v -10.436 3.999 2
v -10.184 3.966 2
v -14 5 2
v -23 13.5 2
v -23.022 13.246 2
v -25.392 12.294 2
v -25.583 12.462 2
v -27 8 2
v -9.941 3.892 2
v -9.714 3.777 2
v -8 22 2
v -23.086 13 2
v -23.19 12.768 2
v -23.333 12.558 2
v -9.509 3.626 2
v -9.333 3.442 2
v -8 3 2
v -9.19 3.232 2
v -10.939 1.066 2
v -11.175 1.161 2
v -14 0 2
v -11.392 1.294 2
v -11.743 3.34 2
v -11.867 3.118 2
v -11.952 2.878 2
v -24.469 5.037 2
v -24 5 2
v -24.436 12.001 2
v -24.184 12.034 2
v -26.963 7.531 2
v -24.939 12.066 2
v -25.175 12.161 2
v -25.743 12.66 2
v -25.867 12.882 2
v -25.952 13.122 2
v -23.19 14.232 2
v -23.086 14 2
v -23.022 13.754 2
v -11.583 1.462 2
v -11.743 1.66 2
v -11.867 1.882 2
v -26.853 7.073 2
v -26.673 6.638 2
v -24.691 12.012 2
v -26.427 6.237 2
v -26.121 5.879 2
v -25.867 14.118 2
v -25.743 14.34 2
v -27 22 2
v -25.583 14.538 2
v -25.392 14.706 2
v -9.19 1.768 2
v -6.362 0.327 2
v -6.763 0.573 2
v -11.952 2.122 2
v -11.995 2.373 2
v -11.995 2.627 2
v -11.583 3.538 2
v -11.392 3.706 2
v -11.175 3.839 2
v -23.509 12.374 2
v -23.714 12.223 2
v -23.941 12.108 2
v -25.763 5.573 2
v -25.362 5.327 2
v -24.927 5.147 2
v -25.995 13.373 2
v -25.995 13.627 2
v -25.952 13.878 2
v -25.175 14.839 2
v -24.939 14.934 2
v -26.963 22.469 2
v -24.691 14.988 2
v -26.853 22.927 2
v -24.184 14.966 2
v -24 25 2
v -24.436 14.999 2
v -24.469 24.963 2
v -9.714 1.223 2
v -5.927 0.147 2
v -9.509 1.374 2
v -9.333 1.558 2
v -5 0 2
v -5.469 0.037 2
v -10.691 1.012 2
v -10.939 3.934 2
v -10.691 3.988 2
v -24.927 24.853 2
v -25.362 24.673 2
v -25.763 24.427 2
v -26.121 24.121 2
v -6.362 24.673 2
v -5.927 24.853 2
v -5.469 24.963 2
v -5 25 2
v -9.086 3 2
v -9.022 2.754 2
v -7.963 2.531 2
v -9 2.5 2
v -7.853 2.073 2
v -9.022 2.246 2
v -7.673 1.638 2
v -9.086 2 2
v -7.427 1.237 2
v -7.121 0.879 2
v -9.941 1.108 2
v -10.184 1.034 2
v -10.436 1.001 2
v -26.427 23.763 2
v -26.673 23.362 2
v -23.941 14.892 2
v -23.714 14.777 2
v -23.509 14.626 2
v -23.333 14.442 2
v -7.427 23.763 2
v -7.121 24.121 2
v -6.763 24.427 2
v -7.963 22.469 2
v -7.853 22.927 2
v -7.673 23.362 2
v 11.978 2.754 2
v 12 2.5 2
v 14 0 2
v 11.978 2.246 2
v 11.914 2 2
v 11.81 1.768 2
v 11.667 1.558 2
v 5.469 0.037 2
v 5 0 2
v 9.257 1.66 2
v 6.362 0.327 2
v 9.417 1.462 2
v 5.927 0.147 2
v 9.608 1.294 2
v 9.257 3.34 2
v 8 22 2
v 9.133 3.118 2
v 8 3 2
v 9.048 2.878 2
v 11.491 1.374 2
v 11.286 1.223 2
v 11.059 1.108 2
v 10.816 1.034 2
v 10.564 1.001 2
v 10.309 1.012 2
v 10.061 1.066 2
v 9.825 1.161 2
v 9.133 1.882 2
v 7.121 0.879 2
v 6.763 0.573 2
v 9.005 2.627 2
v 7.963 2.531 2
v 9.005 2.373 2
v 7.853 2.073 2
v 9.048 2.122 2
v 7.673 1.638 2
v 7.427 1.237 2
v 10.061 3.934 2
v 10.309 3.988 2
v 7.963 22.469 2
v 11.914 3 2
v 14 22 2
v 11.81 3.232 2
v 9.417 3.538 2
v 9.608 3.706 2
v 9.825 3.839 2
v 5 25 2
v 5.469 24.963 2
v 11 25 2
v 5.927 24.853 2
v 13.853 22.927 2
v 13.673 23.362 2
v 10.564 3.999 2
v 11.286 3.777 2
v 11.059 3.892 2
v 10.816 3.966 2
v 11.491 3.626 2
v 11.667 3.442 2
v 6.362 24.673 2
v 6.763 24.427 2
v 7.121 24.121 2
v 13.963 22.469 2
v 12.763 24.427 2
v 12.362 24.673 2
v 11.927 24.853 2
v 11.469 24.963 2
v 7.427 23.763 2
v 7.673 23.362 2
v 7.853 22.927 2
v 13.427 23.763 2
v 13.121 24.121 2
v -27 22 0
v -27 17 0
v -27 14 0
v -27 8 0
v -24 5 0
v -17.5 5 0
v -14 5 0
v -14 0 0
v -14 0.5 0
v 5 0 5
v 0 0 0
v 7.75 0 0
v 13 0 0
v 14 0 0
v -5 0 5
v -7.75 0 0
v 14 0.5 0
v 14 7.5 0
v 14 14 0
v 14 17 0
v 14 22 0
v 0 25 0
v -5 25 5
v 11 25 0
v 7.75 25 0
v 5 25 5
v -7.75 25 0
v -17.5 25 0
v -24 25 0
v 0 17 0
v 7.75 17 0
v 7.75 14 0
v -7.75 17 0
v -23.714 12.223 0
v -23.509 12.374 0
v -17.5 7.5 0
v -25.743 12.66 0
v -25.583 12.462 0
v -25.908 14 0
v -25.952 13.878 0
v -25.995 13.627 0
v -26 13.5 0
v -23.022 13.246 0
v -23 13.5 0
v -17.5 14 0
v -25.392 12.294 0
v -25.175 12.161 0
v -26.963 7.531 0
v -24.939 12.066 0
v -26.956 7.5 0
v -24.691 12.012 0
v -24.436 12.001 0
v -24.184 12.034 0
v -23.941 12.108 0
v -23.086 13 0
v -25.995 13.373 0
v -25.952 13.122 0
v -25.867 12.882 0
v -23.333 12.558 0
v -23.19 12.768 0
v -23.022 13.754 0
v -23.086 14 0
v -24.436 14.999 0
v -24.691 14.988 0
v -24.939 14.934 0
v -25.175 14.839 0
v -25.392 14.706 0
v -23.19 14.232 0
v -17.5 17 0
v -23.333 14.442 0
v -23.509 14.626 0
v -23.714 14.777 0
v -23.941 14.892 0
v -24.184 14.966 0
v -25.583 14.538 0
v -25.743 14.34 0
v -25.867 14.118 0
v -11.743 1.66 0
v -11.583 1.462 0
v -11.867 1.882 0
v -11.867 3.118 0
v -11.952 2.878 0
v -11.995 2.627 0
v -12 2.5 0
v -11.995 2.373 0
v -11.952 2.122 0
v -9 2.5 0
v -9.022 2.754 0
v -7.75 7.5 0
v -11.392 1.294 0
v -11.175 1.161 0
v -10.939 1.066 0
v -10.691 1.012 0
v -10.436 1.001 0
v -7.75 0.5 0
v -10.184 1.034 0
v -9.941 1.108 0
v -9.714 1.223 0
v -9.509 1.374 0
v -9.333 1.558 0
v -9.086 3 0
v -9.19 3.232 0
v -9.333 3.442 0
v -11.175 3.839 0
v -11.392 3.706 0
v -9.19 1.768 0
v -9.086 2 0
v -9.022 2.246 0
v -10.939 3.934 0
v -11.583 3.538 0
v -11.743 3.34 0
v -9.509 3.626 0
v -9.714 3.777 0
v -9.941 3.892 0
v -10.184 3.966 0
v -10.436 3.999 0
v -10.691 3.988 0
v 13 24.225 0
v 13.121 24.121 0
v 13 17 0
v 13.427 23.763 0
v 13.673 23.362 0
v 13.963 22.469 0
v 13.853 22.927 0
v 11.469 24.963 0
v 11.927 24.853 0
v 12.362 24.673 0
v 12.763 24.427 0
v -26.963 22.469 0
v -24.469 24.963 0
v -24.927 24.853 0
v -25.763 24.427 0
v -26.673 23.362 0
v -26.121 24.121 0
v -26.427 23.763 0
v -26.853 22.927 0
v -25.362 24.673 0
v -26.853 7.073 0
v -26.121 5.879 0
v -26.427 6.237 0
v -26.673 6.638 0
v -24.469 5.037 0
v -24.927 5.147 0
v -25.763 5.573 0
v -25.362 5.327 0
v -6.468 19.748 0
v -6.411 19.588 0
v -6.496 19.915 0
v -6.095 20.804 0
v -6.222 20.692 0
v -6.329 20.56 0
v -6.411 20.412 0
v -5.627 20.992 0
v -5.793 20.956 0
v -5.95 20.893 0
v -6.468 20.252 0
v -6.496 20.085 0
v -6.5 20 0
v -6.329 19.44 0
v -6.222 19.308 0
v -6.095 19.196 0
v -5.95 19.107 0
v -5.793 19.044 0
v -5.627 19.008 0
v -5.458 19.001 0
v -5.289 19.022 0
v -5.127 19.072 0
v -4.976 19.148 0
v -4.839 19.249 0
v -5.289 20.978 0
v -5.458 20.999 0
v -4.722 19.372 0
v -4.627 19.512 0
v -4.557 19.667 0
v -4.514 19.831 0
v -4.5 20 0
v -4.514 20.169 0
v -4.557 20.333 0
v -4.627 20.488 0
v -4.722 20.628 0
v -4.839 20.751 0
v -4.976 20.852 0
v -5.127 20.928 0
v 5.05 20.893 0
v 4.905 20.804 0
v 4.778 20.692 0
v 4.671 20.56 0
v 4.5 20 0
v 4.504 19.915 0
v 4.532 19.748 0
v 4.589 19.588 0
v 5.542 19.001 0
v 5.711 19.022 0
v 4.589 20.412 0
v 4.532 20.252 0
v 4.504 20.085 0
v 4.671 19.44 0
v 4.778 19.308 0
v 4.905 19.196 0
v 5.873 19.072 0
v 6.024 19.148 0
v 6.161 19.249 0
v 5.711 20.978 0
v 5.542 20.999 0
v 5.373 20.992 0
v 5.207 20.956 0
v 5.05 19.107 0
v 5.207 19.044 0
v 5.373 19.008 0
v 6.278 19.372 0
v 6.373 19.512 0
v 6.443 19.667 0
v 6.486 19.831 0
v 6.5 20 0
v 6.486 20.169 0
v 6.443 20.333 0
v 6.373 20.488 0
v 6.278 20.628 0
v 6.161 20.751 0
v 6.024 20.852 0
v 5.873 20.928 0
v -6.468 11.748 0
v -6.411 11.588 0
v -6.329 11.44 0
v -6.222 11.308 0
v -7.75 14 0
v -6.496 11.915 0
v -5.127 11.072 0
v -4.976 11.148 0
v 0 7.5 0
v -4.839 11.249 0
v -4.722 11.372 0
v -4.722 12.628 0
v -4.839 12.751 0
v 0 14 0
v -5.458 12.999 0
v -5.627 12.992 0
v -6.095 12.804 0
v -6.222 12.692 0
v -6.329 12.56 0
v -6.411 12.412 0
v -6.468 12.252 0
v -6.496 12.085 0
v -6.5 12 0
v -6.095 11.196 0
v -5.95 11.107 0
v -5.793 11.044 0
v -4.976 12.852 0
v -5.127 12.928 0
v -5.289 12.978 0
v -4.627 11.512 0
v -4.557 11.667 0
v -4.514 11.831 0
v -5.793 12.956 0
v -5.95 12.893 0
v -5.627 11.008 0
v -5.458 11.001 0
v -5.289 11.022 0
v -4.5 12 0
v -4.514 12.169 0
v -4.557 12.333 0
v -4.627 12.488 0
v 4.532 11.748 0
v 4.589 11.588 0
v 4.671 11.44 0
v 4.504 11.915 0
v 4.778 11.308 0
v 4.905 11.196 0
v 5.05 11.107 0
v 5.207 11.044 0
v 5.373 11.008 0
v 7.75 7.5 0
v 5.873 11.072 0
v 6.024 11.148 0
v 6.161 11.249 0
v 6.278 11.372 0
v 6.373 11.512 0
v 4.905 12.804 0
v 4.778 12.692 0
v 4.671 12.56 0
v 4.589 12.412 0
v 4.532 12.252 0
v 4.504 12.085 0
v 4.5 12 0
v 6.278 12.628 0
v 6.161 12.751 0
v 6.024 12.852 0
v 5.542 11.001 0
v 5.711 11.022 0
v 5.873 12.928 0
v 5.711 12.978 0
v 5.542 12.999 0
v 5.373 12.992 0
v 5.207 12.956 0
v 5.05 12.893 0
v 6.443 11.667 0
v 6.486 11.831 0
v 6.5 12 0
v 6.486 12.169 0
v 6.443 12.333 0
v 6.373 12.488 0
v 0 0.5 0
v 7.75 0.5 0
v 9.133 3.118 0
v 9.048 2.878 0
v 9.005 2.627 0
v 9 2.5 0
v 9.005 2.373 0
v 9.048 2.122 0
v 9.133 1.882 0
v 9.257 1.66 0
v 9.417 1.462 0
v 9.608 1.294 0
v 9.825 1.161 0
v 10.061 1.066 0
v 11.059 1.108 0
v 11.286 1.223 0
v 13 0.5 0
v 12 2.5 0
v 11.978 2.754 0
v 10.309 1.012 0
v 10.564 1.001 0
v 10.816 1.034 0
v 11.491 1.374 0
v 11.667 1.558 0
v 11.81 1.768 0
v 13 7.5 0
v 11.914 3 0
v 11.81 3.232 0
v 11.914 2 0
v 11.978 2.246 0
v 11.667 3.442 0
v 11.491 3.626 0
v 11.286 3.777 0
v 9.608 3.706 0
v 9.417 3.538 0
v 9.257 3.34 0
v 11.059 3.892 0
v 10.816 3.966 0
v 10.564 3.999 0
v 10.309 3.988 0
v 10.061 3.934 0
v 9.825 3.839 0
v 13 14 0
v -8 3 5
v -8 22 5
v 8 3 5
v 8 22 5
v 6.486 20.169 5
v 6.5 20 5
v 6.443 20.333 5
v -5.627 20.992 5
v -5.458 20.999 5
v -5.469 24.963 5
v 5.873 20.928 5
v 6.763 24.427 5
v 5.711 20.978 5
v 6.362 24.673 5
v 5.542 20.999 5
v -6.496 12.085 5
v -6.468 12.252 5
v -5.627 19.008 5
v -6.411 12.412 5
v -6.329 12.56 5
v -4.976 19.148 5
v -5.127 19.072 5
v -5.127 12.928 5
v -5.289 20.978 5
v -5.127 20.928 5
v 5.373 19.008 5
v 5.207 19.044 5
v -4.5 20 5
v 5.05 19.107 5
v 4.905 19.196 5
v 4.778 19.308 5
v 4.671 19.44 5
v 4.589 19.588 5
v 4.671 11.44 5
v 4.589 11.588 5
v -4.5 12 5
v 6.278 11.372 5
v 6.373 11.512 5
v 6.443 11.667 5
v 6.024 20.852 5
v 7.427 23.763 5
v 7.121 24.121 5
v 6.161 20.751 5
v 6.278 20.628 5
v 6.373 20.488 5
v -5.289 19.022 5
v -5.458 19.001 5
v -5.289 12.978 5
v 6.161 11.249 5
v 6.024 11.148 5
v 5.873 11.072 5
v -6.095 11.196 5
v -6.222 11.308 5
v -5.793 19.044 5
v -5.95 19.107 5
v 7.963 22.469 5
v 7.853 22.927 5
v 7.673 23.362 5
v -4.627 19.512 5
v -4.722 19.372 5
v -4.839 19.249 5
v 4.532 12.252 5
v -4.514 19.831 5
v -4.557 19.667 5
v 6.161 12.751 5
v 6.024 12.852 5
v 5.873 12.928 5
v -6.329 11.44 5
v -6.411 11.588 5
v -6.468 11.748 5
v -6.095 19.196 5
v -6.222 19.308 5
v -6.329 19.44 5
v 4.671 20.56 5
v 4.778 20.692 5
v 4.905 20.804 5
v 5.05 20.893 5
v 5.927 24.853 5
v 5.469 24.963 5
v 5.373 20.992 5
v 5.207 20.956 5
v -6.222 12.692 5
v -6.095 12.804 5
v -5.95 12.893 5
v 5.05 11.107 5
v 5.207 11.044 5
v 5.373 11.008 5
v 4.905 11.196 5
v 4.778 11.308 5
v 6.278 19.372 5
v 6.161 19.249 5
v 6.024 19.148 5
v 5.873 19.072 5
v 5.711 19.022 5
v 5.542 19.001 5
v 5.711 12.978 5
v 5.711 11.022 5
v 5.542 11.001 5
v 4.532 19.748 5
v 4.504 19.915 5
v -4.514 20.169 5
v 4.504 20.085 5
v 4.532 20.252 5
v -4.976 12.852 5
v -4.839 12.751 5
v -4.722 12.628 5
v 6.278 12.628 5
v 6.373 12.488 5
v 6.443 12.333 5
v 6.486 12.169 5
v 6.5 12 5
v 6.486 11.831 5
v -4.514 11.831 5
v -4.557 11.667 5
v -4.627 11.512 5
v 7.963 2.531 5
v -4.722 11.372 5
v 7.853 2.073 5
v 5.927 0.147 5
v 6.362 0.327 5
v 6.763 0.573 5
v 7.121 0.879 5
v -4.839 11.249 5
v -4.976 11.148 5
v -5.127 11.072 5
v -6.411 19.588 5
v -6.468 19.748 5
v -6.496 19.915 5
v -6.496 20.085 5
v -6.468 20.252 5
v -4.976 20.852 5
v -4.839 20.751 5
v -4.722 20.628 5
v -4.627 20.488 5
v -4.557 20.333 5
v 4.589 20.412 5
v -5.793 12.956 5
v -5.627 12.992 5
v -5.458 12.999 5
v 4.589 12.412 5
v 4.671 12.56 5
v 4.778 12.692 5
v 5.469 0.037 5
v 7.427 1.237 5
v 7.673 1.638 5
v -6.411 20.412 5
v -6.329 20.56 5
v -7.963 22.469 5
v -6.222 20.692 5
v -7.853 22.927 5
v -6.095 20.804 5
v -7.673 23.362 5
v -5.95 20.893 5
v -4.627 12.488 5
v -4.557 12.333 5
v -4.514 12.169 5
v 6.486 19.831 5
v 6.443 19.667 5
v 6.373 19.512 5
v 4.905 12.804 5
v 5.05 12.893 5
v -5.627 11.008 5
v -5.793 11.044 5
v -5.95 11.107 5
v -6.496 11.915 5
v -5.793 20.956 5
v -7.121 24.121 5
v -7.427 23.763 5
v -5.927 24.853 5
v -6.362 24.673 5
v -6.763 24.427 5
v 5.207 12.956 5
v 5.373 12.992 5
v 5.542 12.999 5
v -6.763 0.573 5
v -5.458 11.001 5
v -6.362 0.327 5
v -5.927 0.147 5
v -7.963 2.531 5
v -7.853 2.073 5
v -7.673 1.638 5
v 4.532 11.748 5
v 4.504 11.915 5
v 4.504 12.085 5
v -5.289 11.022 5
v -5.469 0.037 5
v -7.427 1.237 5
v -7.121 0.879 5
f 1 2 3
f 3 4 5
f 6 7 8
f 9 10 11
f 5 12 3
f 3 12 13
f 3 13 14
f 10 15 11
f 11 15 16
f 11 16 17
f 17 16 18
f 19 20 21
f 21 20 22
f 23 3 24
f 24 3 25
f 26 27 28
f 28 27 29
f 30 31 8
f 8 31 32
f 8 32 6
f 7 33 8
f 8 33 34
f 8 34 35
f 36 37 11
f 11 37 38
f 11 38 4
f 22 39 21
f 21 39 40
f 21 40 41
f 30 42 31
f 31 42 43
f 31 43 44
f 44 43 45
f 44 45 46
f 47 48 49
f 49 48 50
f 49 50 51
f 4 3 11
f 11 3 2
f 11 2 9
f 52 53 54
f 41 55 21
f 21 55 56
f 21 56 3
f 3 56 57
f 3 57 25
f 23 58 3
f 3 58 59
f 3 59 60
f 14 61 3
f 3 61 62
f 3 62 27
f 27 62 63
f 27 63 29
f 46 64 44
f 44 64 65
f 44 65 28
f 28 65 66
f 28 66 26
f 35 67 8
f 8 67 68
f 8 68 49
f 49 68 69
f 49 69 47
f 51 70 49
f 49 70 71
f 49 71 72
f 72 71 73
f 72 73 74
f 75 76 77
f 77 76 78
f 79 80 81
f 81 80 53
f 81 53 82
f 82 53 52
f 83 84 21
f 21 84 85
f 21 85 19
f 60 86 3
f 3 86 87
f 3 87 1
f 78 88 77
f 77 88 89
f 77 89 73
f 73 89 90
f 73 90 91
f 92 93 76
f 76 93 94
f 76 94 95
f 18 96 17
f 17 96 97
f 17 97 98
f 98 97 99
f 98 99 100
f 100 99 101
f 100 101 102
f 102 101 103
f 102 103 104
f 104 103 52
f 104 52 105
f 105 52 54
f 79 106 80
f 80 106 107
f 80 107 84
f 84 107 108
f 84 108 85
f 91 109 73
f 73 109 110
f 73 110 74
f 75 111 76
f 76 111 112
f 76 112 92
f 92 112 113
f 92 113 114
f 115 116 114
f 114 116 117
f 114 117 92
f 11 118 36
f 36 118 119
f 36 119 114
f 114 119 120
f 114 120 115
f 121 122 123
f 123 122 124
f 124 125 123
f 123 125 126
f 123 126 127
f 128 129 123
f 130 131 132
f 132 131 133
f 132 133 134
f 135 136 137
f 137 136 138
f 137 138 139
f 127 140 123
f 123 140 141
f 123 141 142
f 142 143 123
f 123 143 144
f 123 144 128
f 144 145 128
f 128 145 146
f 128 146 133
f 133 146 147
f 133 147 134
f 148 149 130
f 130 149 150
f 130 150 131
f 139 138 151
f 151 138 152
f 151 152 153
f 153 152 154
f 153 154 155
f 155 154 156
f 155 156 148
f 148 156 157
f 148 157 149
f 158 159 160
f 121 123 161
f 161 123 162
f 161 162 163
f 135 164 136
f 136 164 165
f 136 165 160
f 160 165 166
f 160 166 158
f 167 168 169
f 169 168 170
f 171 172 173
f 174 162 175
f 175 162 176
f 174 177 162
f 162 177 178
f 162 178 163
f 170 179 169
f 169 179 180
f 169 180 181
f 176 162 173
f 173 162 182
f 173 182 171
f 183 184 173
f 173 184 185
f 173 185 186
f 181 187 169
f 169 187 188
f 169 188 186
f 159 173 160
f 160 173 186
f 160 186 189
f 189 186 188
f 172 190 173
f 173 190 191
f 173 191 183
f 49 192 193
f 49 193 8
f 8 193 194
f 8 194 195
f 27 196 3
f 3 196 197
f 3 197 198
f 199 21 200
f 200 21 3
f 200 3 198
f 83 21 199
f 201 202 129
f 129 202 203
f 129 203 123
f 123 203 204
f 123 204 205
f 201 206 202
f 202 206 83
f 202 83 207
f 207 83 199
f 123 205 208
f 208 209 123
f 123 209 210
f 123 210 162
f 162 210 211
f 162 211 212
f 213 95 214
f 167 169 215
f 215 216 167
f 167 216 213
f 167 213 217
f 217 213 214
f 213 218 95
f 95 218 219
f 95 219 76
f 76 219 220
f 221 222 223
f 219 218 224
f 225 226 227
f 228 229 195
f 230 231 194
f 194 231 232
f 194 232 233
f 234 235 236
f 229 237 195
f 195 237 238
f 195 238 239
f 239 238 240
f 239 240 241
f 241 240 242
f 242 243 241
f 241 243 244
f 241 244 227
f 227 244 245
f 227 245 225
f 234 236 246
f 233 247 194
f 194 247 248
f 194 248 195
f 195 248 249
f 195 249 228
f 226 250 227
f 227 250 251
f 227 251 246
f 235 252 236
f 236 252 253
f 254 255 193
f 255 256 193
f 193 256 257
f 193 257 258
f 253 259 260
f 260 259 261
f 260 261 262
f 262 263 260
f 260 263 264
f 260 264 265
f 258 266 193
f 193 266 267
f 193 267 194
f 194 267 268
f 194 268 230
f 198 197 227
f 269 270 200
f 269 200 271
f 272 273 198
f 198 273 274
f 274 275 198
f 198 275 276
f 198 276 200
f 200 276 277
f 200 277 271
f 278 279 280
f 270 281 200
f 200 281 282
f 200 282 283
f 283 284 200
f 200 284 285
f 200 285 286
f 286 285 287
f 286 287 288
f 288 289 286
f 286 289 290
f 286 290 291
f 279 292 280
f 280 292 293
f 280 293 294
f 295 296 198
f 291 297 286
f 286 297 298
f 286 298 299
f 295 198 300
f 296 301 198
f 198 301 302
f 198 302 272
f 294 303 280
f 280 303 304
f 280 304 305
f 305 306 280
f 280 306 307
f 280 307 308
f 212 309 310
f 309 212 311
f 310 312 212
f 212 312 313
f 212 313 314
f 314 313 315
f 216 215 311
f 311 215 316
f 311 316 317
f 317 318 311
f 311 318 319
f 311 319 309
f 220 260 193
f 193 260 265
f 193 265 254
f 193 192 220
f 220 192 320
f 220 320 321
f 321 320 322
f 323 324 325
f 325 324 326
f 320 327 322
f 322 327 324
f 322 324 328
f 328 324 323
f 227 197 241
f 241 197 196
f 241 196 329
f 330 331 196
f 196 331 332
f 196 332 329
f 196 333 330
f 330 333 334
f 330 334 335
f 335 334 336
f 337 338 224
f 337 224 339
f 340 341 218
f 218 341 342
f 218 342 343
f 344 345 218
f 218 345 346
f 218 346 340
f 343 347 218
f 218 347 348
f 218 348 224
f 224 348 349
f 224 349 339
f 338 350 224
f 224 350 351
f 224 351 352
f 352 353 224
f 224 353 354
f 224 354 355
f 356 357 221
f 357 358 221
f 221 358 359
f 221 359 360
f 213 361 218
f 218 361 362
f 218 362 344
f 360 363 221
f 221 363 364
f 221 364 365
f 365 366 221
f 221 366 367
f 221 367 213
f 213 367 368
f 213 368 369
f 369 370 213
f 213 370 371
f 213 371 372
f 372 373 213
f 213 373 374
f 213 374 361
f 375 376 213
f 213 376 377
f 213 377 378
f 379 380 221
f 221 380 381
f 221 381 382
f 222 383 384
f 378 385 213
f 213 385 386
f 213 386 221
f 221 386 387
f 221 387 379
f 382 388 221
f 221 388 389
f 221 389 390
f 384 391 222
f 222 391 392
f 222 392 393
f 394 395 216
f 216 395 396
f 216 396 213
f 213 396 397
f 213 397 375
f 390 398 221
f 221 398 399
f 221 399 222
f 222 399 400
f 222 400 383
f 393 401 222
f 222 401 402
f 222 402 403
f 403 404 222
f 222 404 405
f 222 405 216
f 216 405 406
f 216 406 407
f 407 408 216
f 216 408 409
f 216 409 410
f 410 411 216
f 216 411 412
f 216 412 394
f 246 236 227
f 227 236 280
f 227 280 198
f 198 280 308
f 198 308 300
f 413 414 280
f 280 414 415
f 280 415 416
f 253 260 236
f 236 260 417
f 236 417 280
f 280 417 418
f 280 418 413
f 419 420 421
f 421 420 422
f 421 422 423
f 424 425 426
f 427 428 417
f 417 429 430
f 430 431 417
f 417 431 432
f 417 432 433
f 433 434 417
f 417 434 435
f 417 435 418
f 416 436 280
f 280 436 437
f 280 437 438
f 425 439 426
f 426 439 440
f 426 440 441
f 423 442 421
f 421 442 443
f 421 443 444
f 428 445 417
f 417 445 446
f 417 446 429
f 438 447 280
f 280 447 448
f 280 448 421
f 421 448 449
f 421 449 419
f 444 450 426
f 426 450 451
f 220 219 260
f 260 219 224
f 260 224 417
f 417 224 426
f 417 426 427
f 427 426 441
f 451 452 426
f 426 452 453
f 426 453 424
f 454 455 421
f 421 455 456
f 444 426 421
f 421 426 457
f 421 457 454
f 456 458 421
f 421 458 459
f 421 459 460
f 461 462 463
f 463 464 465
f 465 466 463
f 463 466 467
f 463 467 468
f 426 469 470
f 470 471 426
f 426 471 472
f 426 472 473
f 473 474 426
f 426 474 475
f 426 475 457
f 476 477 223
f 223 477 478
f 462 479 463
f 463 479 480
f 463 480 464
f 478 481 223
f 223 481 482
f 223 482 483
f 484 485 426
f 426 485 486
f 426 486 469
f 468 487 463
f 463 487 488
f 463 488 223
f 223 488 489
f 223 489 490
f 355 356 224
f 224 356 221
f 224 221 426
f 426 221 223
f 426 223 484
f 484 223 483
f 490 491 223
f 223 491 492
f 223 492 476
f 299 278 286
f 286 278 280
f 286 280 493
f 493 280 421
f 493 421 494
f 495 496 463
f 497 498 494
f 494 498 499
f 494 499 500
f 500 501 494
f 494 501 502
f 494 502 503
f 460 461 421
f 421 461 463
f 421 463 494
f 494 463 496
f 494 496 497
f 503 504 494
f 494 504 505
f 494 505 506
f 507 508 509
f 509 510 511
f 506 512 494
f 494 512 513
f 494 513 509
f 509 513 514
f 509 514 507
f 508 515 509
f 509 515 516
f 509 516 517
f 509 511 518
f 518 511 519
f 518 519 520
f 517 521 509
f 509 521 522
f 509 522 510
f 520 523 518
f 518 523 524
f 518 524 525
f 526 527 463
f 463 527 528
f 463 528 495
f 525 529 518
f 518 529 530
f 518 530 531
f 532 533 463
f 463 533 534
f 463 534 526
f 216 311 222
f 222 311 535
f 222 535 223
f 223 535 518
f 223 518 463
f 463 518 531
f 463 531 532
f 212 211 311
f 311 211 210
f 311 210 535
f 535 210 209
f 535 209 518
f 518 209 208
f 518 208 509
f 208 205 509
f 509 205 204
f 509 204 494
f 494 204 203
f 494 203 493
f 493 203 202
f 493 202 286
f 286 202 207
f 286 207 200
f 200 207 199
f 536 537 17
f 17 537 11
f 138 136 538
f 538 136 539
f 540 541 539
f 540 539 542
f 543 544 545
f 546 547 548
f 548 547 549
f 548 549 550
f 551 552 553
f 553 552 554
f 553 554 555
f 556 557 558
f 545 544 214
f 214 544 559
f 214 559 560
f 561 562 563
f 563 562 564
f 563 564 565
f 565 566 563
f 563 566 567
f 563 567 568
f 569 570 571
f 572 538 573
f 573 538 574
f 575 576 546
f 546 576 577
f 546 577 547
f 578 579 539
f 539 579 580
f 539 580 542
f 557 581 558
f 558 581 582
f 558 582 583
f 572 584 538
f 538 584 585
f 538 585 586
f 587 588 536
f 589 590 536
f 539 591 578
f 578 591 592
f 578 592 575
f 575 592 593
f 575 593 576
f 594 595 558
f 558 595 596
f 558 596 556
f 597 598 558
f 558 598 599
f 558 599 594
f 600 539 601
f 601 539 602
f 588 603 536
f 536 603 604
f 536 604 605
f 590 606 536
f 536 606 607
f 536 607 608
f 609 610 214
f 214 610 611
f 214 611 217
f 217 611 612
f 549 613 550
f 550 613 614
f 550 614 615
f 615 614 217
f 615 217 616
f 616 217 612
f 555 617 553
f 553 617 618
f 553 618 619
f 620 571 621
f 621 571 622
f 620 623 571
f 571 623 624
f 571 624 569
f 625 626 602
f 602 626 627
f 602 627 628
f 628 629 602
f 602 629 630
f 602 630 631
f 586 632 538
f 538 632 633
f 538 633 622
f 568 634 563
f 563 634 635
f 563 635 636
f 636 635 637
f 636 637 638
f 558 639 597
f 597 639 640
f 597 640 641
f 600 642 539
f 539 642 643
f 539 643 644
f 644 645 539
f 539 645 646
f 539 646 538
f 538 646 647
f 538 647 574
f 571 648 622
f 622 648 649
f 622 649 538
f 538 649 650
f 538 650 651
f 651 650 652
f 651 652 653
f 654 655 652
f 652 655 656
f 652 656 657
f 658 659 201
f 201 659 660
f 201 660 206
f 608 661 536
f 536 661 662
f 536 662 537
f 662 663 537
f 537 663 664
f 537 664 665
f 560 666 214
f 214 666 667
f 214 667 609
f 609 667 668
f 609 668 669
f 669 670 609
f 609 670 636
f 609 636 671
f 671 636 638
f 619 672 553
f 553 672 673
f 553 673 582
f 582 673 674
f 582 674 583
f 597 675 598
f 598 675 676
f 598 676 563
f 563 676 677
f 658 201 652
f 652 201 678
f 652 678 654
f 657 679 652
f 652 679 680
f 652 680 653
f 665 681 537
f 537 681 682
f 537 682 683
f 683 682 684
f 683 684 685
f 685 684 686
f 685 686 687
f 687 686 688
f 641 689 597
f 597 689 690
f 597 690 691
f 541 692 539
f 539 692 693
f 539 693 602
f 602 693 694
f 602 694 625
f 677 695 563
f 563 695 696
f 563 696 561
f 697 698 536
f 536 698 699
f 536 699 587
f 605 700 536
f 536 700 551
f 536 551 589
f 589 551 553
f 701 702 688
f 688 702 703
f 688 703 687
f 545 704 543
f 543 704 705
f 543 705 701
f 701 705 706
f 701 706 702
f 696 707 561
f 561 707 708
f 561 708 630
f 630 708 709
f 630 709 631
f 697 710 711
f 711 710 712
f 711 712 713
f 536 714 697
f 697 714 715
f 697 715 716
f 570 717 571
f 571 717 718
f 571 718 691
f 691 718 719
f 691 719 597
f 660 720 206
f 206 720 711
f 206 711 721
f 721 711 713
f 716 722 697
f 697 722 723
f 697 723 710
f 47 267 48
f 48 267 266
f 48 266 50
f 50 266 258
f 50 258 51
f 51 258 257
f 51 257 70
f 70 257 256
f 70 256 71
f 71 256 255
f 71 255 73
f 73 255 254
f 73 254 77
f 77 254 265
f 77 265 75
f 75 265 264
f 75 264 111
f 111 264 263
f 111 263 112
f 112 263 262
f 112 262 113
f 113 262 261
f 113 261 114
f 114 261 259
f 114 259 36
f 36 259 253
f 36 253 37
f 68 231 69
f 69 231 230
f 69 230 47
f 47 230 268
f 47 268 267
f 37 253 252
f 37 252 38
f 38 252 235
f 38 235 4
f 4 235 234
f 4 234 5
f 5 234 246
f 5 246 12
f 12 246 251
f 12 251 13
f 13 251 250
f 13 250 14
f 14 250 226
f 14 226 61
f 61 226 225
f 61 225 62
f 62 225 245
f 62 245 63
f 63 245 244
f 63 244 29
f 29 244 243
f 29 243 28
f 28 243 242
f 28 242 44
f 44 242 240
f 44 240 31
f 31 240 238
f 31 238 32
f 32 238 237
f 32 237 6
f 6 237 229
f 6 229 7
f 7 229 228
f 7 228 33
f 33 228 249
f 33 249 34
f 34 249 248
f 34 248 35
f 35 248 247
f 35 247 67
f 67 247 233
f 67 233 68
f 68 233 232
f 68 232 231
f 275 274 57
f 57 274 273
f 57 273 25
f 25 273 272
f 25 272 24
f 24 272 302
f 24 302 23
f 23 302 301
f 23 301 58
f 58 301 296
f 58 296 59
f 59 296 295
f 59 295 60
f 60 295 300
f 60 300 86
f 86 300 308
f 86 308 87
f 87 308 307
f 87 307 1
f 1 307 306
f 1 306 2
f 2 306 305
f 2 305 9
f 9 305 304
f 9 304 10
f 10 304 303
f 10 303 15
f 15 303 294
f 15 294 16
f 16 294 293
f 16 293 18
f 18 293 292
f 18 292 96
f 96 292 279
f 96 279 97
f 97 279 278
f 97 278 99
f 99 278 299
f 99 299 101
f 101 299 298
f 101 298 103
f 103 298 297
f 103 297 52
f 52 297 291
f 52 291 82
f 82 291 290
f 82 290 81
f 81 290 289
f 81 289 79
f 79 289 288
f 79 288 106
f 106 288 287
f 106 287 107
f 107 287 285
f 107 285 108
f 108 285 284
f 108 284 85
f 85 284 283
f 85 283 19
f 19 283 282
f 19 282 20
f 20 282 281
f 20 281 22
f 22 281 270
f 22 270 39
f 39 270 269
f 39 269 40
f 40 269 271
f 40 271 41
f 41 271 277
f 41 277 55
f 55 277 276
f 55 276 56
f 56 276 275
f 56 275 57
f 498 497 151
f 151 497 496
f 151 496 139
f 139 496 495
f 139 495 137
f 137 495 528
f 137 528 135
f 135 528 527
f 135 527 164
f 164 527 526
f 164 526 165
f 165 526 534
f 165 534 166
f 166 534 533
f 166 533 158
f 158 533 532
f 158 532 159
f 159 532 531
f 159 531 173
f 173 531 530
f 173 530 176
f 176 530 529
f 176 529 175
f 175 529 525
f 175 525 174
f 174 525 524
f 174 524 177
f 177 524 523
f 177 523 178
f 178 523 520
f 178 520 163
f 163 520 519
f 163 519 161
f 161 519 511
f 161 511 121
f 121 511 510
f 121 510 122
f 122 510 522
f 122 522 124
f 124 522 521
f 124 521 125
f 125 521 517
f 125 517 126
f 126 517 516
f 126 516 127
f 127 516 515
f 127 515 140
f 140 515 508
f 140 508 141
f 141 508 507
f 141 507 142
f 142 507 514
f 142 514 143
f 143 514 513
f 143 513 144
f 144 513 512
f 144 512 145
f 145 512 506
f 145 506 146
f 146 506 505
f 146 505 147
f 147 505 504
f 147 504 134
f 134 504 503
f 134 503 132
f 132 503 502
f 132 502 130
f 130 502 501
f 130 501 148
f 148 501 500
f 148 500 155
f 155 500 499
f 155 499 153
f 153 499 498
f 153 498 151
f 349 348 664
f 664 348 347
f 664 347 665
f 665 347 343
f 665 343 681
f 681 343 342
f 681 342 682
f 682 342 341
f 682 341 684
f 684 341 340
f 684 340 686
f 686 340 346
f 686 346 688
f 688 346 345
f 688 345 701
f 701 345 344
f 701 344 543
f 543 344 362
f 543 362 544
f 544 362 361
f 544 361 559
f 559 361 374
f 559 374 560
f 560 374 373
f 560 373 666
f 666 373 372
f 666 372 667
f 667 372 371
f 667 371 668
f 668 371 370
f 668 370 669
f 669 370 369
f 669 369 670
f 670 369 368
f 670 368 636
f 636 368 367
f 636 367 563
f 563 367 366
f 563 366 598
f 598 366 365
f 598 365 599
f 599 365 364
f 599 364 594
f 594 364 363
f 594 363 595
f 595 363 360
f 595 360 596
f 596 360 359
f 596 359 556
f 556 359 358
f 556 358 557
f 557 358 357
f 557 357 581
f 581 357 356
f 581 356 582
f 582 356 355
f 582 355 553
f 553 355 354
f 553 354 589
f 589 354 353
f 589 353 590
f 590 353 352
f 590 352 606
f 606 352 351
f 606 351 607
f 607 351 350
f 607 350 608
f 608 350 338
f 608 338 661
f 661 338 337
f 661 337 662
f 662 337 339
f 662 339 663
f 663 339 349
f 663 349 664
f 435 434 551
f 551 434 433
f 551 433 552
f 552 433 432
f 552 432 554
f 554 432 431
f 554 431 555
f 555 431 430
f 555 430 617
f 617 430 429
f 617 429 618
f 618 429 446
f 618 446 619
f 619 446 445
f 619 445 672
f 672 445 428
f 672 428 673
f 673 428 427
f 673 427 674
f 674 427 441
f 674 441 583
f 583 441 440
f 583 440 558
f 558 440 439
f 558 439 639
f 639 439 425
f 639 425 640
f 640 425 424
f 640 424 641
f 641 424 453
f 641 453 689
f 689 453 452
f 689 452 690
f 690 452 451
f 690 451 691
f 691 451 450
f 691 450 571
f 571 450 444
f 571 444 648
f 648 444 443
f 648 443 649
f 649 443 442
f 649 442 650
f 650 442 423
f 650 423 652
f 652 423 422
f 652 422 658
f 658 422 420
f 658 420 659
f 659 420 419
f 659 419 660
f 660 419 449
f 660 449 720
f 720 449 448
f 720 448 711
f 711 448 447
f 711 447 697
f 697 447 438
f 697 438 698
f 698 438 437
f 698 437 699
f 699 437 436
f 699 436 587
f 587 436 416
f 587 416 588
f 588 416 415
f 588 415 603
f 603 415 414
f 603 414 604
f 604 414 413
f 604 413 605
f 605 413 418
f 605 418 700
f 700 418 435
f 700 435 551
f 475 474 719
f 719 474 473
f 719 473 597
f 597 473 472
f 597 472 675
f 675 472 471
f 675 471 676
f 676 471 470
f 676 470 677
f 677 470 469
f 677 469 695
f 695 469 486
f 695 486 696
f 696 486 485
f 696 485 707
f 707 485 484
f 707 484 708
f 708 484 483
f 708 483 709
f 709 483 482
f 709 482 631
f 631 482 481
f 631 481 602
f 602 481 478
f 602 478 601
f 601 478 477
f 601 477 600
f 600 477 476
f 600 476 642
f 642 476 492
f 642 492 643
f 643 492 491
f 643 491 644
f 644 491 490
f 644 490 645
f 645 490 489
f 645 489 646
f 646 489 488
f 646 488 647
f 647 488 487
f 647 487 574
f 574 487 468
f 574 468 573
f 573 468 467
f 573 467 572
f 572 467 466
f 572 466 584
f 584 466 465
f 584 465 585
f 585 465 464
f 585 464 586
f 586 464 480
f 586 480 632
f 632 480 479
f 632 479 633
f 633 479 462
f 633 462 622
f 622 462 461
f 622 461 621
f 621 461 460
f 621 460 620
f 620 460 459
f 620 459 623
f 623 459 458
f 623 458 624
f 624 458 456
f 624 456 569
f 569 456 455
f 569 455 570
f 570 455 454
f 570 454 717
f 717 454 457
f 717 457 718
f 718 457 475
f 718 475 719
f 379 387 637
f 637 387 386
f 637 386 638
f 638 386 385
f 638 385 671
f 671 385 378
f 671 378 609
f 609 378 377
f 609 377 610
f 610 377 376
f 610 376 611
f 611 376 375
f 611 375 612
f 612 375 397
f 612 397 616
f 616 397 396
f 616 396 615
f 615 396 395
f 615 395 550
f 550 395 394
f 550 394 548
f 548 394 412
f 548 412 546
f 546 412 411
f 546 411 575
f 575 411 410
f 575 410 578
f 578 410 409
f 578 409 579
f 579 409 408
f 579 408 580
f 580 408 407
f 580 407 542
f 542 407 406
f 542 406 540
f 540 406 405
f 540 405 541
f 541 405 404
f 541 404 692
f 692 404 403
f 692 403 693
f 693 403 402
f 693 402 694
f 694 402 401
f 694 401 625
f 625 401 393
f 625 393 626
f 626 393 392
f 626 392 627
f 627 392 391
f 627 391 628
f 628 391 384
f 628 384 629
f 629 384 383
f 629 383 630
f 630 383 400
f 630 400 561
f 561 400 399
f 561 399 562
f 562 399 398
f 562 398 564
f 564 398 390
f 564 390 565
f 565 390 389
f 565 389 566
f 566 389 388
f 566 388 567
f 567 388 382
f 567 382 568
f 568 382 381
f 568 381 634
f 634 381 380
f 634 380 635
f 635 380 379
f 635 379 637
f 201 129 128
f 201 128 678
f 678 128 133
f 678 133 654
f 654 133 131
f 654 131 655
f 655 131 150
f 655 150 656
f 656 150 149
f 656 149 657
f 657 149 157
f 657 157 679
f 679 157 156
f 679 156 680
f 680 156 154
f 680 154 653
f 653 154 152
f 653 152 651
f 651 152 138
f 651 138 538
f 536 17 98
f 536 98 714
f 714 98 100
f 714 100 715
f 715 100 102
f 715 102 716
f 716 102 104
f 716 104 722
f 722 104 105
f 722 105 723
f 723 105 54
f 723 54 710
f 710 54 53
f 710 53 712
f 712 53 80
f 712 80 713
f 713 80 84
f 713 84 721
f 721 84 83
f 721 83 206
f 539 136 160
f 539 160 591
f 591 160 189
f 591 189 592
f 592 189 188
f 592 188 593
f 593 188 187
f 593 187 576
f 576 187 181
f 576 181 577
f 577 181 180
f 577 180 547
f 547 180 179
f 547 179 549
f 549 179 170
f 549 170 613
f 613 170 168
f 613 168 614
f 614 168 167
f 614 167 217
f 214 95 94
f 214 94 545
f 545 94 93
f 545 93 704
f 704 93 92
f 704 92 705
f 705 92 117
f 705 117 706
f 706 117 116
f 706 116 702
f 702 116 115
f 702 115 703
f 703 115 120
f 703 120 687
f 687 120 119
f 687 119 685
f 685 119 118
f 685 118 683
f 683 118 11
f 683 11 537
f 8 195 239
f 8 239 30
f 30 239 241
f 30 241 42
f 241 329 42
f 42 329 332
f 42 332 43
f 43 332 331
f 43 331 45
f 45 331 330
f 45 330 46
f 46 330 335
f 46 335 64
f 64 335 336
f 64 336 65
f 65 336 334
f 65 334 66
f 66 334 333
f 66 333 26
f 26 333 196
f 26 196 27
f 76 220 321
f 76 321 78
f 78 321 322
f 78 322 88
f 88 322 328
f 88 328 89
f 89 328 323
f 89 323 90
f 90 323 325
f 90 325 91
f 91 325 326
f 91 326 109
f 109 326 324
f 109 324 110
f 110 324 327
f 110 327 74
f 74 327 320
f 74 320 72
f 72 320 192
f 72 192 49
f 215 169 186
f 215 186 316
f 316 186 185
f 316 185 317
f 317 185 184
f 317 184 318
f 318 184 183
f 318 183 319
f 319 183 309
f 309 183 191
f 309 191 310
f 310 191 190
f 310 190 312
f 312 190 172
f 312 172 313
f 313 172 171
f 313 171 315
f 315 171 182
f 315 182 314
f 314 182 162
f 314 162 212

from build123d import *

# Parameters (mm, degrees)
BOSS_EXTRU_1_DEPTH      = 2
ESQUISSE2_W             = 16
ESQUISSE2_H             = 25
BOSS_EXTRU_2_DEPTH      = 3
ENL_V_MAT_EXTRU_1_REACH = 4
ESQUISSE3_R             = 1.5
ENL_V_MAT_EXTRU_2_REACH = 7
ESQUISSE4_R             = 1
ENL_V_MAT_EXTRU_3_REACH = 4
ESQUISSE5_W             = 13
ESQUISSE5_H             = 20
CONG_1_R                = 3


with BuildPart() as part:
    # Esquisse1 → Boss.-Extru.1 (new body)
    with BuildSketch(Plane.XY):
        Polygon((-27, 25), (27, 25), (27, 5), (14, 5), (14, 0), (-14, 0), (-14, 5), (-27, 5), align=None)
    extrude(amount=BOSS_EXTRU_1_DEPTH)

    # Esquisse2 → Boss.-Extru.2 (add)
    with BuildSketch(Plane.XY.offset(2)):
        with Locations((0, 12.5)):
            Rectangle(ESQUISSE2_W, ESQUISSE2_H)
    extrude(amount=BOSS_EXTRU_2_DEPTH)

    # Esquisse3 → Enlèv. mat.-Extru.1 (cut, up to next)
    with BuildSketch(Plane.XY.offset(2), mode=Mode.PRIVATE) as enl_v_mat_extru_1_sk1:
        with Locations((-24.5, 13.5)):
            Circle(ESQUISSE3_R)
    enl_v_mat_extru_1_tool1 = extrude(enl_v_mat_extru_1_sk1.sketch, amount=-ENL_V_MAT_EXTRU_1_REACH, mode=Mode.PRIVATE) & part.part
    add(enl_v_mat_extru_1_tool1.solids().sort_by_distance((-24.5, 13.5, 2))[0], mode=Mode.SUBTRACT)
    # Esquisse3 → Enlèv. mat.-Extru.1 (cut, up to next)
    with BuildSketch(Plane.XY.offset(2), mode=Mode.PRIVATE) as enl_v_mat_extru_1_sk2:
        with Locations((-10.5, 2.5)):
            Circle(ESQUISSE3_R)
    enl_v_mat_extru_1_tool2 = extrude(enl_v_mat_extru_1_sk2.sketch, amount=-ENL_V_MAT_EXTRU_1_REACH, mode=Mode.PRIVATE) & part.part
    add(enl_v_mat_extru_1_tool2.solids().sort_by_distance((-10.5, 2.5, 2))[0], mode=Mode.SUBTRACT)
    # Esquisse3 → Enlèv. mat.-Extru.1 (cut, up to next)
    with BuildSketch(Plane.XY.offset(2), mode=Mode.PRIVATE) as enl_v_mat_extru_1_sk3:
        with Locations((10.5, 2.5)):
            Circle(ESQUISSE3_R)
    enl_v_mat_extru_1_tool3 = extrude(enl_v_mat_extru_1_sk3.sketch, amount=-ENL_V_MAT_EXTRU_1_REACH, mode=Mode.PRIVATE) & part.part
    add(enl_v_mat_extru_1_tool3.solids().sort_by_distance((10.5, 2.5, 2))[0], mode=Mode.SUBTRACT)

    # Esquisse4 → Enlèv. mat.-Extru.2 (cut, up to next)
    with BuildSketch(Plane.XY.offset(5), mode=Mode.PRIVATE) as enl_v_mat_extru_2_sk1:
        with Locations((-5.5, 20)):
            Circle(ESQUISSE4_R)
    enl_v_mat_extru_2_tool1 = extrude(enl_v_mat_extru_2_sk1.sketch, amount=-ENL_V_MAT_EXTRU_2_REACH, mode=Mode.PRIVATE) & part.part
    add(enl_v_mat_extru_2_tool1.solids().sort_by_distance((-5.5, 20, 5))[0], mode=Mode.SUBTRACT)
    # Esquisse4 → Enlèv. mat.-Extru.2 (cut, up to next)
    with BuildSketch(Plane.XY.offset(5), mode=Mode.PRIVATE) as enl_v_mat_extru_2_sk2:
        with Locations((-5.5, 12)):
            Circle(ESQUISSE4_R)
    enl_v_mat_extru_2_tool2 = extrude(enl_v_mat_extru_2_sk2.sketch, amount=-ENL_V_MAT_EXTRU_2_REACH, mode=Mode.PRIVATE) & part.part
    add(enl_v_mat_extru_2_tool2.solids().sort_by_distance((-5.5, 12, 5))[0], mode=Mode.SUBTRACT)
    # Esquisse4 → Enlèv. mat.-Extru.2 (cut, up to next)
    with BuildSketch(Plane.XY.offset(5), mode=Mode.PRIVATE) as enl_v_mat_extru_2_sk3:
        with Locations((5.5, 12)):
            Circle(ESQUISSE4_R)
    enl_v_mat_extru_2_tool3 = extrude(enl_v_mat_extru_2_sk3.sketch, amount=-ENL_V_MAT_EXTRU_2_REACH, mode=Mode.PRIVATE) & part.part
    add(enl_v_mat_extru_2_tool3.solids().sort_by_distance((5.5, 12, 5))[0], mode=Mode.SUBTRACT)
    # Esquisse4 → Enlèv. mat.-Extru.2 (cut, up to next)
    with BuildSketch(Plane.XY.offset(5), mode=Mode.PRIVATE) as enl_v_mat_extru_2_sk4:
        with Locations((5.5, 20)):
            Circle(ESQUISSE4_R)
    enl_v_mat_extru_2_tool4 = extrude(enl_v_mat_extru_2_sk4.sketch, amount=-ENL_V_MAT_EXTRU_2_REACH, mode=Mode.PRIVATE) & part.part
    add(enl_v_mat_extru_2_tool4.solids().sort_by_distance((5.5, 20, 5))[0], mode=Mode.SUBTRACT)

    # Esquisse5 → Enlèv. mat.-Extru.3 (cut, up to next)
    with BuildSketch(Plane.XY.offset(2), mode=Mode.PRIVATE) as enl_v_mat_extru_3_sk1:
        with Locations((20.5, 15)):
            Rectangle(ESQUISSE5_W, ESQUISSE5_H)
    enl_v_mat_extru_3_tool1 = extrude(enl_v_mat_extru_3_sk1.sketch, amount=-ENL_V_MAT_EXTRU_3_REACH, mode=Mode.PRIVATE) & part.part
    add(enl_v_mat_extru_3_tool1.solids().sort_by_distance((20.5, 15, 2))[0], mode=Mode.SUBTRACT)

    # Congé1
    cong_1_edges = [part.edges().sort_by_distance(p)[0] for p in [
        (8, 0, 3.5),
        (-8, 0, 3.5),
        (8, 25, 3.5),
        (-8, 25, 3.5),
        (-27, 5, 1),
        (-27, 25, 1),
        (14, 25, 1),
    ]]
    fillet(cong_1_edges, radius=CONG_1_R)


solid = part.part
